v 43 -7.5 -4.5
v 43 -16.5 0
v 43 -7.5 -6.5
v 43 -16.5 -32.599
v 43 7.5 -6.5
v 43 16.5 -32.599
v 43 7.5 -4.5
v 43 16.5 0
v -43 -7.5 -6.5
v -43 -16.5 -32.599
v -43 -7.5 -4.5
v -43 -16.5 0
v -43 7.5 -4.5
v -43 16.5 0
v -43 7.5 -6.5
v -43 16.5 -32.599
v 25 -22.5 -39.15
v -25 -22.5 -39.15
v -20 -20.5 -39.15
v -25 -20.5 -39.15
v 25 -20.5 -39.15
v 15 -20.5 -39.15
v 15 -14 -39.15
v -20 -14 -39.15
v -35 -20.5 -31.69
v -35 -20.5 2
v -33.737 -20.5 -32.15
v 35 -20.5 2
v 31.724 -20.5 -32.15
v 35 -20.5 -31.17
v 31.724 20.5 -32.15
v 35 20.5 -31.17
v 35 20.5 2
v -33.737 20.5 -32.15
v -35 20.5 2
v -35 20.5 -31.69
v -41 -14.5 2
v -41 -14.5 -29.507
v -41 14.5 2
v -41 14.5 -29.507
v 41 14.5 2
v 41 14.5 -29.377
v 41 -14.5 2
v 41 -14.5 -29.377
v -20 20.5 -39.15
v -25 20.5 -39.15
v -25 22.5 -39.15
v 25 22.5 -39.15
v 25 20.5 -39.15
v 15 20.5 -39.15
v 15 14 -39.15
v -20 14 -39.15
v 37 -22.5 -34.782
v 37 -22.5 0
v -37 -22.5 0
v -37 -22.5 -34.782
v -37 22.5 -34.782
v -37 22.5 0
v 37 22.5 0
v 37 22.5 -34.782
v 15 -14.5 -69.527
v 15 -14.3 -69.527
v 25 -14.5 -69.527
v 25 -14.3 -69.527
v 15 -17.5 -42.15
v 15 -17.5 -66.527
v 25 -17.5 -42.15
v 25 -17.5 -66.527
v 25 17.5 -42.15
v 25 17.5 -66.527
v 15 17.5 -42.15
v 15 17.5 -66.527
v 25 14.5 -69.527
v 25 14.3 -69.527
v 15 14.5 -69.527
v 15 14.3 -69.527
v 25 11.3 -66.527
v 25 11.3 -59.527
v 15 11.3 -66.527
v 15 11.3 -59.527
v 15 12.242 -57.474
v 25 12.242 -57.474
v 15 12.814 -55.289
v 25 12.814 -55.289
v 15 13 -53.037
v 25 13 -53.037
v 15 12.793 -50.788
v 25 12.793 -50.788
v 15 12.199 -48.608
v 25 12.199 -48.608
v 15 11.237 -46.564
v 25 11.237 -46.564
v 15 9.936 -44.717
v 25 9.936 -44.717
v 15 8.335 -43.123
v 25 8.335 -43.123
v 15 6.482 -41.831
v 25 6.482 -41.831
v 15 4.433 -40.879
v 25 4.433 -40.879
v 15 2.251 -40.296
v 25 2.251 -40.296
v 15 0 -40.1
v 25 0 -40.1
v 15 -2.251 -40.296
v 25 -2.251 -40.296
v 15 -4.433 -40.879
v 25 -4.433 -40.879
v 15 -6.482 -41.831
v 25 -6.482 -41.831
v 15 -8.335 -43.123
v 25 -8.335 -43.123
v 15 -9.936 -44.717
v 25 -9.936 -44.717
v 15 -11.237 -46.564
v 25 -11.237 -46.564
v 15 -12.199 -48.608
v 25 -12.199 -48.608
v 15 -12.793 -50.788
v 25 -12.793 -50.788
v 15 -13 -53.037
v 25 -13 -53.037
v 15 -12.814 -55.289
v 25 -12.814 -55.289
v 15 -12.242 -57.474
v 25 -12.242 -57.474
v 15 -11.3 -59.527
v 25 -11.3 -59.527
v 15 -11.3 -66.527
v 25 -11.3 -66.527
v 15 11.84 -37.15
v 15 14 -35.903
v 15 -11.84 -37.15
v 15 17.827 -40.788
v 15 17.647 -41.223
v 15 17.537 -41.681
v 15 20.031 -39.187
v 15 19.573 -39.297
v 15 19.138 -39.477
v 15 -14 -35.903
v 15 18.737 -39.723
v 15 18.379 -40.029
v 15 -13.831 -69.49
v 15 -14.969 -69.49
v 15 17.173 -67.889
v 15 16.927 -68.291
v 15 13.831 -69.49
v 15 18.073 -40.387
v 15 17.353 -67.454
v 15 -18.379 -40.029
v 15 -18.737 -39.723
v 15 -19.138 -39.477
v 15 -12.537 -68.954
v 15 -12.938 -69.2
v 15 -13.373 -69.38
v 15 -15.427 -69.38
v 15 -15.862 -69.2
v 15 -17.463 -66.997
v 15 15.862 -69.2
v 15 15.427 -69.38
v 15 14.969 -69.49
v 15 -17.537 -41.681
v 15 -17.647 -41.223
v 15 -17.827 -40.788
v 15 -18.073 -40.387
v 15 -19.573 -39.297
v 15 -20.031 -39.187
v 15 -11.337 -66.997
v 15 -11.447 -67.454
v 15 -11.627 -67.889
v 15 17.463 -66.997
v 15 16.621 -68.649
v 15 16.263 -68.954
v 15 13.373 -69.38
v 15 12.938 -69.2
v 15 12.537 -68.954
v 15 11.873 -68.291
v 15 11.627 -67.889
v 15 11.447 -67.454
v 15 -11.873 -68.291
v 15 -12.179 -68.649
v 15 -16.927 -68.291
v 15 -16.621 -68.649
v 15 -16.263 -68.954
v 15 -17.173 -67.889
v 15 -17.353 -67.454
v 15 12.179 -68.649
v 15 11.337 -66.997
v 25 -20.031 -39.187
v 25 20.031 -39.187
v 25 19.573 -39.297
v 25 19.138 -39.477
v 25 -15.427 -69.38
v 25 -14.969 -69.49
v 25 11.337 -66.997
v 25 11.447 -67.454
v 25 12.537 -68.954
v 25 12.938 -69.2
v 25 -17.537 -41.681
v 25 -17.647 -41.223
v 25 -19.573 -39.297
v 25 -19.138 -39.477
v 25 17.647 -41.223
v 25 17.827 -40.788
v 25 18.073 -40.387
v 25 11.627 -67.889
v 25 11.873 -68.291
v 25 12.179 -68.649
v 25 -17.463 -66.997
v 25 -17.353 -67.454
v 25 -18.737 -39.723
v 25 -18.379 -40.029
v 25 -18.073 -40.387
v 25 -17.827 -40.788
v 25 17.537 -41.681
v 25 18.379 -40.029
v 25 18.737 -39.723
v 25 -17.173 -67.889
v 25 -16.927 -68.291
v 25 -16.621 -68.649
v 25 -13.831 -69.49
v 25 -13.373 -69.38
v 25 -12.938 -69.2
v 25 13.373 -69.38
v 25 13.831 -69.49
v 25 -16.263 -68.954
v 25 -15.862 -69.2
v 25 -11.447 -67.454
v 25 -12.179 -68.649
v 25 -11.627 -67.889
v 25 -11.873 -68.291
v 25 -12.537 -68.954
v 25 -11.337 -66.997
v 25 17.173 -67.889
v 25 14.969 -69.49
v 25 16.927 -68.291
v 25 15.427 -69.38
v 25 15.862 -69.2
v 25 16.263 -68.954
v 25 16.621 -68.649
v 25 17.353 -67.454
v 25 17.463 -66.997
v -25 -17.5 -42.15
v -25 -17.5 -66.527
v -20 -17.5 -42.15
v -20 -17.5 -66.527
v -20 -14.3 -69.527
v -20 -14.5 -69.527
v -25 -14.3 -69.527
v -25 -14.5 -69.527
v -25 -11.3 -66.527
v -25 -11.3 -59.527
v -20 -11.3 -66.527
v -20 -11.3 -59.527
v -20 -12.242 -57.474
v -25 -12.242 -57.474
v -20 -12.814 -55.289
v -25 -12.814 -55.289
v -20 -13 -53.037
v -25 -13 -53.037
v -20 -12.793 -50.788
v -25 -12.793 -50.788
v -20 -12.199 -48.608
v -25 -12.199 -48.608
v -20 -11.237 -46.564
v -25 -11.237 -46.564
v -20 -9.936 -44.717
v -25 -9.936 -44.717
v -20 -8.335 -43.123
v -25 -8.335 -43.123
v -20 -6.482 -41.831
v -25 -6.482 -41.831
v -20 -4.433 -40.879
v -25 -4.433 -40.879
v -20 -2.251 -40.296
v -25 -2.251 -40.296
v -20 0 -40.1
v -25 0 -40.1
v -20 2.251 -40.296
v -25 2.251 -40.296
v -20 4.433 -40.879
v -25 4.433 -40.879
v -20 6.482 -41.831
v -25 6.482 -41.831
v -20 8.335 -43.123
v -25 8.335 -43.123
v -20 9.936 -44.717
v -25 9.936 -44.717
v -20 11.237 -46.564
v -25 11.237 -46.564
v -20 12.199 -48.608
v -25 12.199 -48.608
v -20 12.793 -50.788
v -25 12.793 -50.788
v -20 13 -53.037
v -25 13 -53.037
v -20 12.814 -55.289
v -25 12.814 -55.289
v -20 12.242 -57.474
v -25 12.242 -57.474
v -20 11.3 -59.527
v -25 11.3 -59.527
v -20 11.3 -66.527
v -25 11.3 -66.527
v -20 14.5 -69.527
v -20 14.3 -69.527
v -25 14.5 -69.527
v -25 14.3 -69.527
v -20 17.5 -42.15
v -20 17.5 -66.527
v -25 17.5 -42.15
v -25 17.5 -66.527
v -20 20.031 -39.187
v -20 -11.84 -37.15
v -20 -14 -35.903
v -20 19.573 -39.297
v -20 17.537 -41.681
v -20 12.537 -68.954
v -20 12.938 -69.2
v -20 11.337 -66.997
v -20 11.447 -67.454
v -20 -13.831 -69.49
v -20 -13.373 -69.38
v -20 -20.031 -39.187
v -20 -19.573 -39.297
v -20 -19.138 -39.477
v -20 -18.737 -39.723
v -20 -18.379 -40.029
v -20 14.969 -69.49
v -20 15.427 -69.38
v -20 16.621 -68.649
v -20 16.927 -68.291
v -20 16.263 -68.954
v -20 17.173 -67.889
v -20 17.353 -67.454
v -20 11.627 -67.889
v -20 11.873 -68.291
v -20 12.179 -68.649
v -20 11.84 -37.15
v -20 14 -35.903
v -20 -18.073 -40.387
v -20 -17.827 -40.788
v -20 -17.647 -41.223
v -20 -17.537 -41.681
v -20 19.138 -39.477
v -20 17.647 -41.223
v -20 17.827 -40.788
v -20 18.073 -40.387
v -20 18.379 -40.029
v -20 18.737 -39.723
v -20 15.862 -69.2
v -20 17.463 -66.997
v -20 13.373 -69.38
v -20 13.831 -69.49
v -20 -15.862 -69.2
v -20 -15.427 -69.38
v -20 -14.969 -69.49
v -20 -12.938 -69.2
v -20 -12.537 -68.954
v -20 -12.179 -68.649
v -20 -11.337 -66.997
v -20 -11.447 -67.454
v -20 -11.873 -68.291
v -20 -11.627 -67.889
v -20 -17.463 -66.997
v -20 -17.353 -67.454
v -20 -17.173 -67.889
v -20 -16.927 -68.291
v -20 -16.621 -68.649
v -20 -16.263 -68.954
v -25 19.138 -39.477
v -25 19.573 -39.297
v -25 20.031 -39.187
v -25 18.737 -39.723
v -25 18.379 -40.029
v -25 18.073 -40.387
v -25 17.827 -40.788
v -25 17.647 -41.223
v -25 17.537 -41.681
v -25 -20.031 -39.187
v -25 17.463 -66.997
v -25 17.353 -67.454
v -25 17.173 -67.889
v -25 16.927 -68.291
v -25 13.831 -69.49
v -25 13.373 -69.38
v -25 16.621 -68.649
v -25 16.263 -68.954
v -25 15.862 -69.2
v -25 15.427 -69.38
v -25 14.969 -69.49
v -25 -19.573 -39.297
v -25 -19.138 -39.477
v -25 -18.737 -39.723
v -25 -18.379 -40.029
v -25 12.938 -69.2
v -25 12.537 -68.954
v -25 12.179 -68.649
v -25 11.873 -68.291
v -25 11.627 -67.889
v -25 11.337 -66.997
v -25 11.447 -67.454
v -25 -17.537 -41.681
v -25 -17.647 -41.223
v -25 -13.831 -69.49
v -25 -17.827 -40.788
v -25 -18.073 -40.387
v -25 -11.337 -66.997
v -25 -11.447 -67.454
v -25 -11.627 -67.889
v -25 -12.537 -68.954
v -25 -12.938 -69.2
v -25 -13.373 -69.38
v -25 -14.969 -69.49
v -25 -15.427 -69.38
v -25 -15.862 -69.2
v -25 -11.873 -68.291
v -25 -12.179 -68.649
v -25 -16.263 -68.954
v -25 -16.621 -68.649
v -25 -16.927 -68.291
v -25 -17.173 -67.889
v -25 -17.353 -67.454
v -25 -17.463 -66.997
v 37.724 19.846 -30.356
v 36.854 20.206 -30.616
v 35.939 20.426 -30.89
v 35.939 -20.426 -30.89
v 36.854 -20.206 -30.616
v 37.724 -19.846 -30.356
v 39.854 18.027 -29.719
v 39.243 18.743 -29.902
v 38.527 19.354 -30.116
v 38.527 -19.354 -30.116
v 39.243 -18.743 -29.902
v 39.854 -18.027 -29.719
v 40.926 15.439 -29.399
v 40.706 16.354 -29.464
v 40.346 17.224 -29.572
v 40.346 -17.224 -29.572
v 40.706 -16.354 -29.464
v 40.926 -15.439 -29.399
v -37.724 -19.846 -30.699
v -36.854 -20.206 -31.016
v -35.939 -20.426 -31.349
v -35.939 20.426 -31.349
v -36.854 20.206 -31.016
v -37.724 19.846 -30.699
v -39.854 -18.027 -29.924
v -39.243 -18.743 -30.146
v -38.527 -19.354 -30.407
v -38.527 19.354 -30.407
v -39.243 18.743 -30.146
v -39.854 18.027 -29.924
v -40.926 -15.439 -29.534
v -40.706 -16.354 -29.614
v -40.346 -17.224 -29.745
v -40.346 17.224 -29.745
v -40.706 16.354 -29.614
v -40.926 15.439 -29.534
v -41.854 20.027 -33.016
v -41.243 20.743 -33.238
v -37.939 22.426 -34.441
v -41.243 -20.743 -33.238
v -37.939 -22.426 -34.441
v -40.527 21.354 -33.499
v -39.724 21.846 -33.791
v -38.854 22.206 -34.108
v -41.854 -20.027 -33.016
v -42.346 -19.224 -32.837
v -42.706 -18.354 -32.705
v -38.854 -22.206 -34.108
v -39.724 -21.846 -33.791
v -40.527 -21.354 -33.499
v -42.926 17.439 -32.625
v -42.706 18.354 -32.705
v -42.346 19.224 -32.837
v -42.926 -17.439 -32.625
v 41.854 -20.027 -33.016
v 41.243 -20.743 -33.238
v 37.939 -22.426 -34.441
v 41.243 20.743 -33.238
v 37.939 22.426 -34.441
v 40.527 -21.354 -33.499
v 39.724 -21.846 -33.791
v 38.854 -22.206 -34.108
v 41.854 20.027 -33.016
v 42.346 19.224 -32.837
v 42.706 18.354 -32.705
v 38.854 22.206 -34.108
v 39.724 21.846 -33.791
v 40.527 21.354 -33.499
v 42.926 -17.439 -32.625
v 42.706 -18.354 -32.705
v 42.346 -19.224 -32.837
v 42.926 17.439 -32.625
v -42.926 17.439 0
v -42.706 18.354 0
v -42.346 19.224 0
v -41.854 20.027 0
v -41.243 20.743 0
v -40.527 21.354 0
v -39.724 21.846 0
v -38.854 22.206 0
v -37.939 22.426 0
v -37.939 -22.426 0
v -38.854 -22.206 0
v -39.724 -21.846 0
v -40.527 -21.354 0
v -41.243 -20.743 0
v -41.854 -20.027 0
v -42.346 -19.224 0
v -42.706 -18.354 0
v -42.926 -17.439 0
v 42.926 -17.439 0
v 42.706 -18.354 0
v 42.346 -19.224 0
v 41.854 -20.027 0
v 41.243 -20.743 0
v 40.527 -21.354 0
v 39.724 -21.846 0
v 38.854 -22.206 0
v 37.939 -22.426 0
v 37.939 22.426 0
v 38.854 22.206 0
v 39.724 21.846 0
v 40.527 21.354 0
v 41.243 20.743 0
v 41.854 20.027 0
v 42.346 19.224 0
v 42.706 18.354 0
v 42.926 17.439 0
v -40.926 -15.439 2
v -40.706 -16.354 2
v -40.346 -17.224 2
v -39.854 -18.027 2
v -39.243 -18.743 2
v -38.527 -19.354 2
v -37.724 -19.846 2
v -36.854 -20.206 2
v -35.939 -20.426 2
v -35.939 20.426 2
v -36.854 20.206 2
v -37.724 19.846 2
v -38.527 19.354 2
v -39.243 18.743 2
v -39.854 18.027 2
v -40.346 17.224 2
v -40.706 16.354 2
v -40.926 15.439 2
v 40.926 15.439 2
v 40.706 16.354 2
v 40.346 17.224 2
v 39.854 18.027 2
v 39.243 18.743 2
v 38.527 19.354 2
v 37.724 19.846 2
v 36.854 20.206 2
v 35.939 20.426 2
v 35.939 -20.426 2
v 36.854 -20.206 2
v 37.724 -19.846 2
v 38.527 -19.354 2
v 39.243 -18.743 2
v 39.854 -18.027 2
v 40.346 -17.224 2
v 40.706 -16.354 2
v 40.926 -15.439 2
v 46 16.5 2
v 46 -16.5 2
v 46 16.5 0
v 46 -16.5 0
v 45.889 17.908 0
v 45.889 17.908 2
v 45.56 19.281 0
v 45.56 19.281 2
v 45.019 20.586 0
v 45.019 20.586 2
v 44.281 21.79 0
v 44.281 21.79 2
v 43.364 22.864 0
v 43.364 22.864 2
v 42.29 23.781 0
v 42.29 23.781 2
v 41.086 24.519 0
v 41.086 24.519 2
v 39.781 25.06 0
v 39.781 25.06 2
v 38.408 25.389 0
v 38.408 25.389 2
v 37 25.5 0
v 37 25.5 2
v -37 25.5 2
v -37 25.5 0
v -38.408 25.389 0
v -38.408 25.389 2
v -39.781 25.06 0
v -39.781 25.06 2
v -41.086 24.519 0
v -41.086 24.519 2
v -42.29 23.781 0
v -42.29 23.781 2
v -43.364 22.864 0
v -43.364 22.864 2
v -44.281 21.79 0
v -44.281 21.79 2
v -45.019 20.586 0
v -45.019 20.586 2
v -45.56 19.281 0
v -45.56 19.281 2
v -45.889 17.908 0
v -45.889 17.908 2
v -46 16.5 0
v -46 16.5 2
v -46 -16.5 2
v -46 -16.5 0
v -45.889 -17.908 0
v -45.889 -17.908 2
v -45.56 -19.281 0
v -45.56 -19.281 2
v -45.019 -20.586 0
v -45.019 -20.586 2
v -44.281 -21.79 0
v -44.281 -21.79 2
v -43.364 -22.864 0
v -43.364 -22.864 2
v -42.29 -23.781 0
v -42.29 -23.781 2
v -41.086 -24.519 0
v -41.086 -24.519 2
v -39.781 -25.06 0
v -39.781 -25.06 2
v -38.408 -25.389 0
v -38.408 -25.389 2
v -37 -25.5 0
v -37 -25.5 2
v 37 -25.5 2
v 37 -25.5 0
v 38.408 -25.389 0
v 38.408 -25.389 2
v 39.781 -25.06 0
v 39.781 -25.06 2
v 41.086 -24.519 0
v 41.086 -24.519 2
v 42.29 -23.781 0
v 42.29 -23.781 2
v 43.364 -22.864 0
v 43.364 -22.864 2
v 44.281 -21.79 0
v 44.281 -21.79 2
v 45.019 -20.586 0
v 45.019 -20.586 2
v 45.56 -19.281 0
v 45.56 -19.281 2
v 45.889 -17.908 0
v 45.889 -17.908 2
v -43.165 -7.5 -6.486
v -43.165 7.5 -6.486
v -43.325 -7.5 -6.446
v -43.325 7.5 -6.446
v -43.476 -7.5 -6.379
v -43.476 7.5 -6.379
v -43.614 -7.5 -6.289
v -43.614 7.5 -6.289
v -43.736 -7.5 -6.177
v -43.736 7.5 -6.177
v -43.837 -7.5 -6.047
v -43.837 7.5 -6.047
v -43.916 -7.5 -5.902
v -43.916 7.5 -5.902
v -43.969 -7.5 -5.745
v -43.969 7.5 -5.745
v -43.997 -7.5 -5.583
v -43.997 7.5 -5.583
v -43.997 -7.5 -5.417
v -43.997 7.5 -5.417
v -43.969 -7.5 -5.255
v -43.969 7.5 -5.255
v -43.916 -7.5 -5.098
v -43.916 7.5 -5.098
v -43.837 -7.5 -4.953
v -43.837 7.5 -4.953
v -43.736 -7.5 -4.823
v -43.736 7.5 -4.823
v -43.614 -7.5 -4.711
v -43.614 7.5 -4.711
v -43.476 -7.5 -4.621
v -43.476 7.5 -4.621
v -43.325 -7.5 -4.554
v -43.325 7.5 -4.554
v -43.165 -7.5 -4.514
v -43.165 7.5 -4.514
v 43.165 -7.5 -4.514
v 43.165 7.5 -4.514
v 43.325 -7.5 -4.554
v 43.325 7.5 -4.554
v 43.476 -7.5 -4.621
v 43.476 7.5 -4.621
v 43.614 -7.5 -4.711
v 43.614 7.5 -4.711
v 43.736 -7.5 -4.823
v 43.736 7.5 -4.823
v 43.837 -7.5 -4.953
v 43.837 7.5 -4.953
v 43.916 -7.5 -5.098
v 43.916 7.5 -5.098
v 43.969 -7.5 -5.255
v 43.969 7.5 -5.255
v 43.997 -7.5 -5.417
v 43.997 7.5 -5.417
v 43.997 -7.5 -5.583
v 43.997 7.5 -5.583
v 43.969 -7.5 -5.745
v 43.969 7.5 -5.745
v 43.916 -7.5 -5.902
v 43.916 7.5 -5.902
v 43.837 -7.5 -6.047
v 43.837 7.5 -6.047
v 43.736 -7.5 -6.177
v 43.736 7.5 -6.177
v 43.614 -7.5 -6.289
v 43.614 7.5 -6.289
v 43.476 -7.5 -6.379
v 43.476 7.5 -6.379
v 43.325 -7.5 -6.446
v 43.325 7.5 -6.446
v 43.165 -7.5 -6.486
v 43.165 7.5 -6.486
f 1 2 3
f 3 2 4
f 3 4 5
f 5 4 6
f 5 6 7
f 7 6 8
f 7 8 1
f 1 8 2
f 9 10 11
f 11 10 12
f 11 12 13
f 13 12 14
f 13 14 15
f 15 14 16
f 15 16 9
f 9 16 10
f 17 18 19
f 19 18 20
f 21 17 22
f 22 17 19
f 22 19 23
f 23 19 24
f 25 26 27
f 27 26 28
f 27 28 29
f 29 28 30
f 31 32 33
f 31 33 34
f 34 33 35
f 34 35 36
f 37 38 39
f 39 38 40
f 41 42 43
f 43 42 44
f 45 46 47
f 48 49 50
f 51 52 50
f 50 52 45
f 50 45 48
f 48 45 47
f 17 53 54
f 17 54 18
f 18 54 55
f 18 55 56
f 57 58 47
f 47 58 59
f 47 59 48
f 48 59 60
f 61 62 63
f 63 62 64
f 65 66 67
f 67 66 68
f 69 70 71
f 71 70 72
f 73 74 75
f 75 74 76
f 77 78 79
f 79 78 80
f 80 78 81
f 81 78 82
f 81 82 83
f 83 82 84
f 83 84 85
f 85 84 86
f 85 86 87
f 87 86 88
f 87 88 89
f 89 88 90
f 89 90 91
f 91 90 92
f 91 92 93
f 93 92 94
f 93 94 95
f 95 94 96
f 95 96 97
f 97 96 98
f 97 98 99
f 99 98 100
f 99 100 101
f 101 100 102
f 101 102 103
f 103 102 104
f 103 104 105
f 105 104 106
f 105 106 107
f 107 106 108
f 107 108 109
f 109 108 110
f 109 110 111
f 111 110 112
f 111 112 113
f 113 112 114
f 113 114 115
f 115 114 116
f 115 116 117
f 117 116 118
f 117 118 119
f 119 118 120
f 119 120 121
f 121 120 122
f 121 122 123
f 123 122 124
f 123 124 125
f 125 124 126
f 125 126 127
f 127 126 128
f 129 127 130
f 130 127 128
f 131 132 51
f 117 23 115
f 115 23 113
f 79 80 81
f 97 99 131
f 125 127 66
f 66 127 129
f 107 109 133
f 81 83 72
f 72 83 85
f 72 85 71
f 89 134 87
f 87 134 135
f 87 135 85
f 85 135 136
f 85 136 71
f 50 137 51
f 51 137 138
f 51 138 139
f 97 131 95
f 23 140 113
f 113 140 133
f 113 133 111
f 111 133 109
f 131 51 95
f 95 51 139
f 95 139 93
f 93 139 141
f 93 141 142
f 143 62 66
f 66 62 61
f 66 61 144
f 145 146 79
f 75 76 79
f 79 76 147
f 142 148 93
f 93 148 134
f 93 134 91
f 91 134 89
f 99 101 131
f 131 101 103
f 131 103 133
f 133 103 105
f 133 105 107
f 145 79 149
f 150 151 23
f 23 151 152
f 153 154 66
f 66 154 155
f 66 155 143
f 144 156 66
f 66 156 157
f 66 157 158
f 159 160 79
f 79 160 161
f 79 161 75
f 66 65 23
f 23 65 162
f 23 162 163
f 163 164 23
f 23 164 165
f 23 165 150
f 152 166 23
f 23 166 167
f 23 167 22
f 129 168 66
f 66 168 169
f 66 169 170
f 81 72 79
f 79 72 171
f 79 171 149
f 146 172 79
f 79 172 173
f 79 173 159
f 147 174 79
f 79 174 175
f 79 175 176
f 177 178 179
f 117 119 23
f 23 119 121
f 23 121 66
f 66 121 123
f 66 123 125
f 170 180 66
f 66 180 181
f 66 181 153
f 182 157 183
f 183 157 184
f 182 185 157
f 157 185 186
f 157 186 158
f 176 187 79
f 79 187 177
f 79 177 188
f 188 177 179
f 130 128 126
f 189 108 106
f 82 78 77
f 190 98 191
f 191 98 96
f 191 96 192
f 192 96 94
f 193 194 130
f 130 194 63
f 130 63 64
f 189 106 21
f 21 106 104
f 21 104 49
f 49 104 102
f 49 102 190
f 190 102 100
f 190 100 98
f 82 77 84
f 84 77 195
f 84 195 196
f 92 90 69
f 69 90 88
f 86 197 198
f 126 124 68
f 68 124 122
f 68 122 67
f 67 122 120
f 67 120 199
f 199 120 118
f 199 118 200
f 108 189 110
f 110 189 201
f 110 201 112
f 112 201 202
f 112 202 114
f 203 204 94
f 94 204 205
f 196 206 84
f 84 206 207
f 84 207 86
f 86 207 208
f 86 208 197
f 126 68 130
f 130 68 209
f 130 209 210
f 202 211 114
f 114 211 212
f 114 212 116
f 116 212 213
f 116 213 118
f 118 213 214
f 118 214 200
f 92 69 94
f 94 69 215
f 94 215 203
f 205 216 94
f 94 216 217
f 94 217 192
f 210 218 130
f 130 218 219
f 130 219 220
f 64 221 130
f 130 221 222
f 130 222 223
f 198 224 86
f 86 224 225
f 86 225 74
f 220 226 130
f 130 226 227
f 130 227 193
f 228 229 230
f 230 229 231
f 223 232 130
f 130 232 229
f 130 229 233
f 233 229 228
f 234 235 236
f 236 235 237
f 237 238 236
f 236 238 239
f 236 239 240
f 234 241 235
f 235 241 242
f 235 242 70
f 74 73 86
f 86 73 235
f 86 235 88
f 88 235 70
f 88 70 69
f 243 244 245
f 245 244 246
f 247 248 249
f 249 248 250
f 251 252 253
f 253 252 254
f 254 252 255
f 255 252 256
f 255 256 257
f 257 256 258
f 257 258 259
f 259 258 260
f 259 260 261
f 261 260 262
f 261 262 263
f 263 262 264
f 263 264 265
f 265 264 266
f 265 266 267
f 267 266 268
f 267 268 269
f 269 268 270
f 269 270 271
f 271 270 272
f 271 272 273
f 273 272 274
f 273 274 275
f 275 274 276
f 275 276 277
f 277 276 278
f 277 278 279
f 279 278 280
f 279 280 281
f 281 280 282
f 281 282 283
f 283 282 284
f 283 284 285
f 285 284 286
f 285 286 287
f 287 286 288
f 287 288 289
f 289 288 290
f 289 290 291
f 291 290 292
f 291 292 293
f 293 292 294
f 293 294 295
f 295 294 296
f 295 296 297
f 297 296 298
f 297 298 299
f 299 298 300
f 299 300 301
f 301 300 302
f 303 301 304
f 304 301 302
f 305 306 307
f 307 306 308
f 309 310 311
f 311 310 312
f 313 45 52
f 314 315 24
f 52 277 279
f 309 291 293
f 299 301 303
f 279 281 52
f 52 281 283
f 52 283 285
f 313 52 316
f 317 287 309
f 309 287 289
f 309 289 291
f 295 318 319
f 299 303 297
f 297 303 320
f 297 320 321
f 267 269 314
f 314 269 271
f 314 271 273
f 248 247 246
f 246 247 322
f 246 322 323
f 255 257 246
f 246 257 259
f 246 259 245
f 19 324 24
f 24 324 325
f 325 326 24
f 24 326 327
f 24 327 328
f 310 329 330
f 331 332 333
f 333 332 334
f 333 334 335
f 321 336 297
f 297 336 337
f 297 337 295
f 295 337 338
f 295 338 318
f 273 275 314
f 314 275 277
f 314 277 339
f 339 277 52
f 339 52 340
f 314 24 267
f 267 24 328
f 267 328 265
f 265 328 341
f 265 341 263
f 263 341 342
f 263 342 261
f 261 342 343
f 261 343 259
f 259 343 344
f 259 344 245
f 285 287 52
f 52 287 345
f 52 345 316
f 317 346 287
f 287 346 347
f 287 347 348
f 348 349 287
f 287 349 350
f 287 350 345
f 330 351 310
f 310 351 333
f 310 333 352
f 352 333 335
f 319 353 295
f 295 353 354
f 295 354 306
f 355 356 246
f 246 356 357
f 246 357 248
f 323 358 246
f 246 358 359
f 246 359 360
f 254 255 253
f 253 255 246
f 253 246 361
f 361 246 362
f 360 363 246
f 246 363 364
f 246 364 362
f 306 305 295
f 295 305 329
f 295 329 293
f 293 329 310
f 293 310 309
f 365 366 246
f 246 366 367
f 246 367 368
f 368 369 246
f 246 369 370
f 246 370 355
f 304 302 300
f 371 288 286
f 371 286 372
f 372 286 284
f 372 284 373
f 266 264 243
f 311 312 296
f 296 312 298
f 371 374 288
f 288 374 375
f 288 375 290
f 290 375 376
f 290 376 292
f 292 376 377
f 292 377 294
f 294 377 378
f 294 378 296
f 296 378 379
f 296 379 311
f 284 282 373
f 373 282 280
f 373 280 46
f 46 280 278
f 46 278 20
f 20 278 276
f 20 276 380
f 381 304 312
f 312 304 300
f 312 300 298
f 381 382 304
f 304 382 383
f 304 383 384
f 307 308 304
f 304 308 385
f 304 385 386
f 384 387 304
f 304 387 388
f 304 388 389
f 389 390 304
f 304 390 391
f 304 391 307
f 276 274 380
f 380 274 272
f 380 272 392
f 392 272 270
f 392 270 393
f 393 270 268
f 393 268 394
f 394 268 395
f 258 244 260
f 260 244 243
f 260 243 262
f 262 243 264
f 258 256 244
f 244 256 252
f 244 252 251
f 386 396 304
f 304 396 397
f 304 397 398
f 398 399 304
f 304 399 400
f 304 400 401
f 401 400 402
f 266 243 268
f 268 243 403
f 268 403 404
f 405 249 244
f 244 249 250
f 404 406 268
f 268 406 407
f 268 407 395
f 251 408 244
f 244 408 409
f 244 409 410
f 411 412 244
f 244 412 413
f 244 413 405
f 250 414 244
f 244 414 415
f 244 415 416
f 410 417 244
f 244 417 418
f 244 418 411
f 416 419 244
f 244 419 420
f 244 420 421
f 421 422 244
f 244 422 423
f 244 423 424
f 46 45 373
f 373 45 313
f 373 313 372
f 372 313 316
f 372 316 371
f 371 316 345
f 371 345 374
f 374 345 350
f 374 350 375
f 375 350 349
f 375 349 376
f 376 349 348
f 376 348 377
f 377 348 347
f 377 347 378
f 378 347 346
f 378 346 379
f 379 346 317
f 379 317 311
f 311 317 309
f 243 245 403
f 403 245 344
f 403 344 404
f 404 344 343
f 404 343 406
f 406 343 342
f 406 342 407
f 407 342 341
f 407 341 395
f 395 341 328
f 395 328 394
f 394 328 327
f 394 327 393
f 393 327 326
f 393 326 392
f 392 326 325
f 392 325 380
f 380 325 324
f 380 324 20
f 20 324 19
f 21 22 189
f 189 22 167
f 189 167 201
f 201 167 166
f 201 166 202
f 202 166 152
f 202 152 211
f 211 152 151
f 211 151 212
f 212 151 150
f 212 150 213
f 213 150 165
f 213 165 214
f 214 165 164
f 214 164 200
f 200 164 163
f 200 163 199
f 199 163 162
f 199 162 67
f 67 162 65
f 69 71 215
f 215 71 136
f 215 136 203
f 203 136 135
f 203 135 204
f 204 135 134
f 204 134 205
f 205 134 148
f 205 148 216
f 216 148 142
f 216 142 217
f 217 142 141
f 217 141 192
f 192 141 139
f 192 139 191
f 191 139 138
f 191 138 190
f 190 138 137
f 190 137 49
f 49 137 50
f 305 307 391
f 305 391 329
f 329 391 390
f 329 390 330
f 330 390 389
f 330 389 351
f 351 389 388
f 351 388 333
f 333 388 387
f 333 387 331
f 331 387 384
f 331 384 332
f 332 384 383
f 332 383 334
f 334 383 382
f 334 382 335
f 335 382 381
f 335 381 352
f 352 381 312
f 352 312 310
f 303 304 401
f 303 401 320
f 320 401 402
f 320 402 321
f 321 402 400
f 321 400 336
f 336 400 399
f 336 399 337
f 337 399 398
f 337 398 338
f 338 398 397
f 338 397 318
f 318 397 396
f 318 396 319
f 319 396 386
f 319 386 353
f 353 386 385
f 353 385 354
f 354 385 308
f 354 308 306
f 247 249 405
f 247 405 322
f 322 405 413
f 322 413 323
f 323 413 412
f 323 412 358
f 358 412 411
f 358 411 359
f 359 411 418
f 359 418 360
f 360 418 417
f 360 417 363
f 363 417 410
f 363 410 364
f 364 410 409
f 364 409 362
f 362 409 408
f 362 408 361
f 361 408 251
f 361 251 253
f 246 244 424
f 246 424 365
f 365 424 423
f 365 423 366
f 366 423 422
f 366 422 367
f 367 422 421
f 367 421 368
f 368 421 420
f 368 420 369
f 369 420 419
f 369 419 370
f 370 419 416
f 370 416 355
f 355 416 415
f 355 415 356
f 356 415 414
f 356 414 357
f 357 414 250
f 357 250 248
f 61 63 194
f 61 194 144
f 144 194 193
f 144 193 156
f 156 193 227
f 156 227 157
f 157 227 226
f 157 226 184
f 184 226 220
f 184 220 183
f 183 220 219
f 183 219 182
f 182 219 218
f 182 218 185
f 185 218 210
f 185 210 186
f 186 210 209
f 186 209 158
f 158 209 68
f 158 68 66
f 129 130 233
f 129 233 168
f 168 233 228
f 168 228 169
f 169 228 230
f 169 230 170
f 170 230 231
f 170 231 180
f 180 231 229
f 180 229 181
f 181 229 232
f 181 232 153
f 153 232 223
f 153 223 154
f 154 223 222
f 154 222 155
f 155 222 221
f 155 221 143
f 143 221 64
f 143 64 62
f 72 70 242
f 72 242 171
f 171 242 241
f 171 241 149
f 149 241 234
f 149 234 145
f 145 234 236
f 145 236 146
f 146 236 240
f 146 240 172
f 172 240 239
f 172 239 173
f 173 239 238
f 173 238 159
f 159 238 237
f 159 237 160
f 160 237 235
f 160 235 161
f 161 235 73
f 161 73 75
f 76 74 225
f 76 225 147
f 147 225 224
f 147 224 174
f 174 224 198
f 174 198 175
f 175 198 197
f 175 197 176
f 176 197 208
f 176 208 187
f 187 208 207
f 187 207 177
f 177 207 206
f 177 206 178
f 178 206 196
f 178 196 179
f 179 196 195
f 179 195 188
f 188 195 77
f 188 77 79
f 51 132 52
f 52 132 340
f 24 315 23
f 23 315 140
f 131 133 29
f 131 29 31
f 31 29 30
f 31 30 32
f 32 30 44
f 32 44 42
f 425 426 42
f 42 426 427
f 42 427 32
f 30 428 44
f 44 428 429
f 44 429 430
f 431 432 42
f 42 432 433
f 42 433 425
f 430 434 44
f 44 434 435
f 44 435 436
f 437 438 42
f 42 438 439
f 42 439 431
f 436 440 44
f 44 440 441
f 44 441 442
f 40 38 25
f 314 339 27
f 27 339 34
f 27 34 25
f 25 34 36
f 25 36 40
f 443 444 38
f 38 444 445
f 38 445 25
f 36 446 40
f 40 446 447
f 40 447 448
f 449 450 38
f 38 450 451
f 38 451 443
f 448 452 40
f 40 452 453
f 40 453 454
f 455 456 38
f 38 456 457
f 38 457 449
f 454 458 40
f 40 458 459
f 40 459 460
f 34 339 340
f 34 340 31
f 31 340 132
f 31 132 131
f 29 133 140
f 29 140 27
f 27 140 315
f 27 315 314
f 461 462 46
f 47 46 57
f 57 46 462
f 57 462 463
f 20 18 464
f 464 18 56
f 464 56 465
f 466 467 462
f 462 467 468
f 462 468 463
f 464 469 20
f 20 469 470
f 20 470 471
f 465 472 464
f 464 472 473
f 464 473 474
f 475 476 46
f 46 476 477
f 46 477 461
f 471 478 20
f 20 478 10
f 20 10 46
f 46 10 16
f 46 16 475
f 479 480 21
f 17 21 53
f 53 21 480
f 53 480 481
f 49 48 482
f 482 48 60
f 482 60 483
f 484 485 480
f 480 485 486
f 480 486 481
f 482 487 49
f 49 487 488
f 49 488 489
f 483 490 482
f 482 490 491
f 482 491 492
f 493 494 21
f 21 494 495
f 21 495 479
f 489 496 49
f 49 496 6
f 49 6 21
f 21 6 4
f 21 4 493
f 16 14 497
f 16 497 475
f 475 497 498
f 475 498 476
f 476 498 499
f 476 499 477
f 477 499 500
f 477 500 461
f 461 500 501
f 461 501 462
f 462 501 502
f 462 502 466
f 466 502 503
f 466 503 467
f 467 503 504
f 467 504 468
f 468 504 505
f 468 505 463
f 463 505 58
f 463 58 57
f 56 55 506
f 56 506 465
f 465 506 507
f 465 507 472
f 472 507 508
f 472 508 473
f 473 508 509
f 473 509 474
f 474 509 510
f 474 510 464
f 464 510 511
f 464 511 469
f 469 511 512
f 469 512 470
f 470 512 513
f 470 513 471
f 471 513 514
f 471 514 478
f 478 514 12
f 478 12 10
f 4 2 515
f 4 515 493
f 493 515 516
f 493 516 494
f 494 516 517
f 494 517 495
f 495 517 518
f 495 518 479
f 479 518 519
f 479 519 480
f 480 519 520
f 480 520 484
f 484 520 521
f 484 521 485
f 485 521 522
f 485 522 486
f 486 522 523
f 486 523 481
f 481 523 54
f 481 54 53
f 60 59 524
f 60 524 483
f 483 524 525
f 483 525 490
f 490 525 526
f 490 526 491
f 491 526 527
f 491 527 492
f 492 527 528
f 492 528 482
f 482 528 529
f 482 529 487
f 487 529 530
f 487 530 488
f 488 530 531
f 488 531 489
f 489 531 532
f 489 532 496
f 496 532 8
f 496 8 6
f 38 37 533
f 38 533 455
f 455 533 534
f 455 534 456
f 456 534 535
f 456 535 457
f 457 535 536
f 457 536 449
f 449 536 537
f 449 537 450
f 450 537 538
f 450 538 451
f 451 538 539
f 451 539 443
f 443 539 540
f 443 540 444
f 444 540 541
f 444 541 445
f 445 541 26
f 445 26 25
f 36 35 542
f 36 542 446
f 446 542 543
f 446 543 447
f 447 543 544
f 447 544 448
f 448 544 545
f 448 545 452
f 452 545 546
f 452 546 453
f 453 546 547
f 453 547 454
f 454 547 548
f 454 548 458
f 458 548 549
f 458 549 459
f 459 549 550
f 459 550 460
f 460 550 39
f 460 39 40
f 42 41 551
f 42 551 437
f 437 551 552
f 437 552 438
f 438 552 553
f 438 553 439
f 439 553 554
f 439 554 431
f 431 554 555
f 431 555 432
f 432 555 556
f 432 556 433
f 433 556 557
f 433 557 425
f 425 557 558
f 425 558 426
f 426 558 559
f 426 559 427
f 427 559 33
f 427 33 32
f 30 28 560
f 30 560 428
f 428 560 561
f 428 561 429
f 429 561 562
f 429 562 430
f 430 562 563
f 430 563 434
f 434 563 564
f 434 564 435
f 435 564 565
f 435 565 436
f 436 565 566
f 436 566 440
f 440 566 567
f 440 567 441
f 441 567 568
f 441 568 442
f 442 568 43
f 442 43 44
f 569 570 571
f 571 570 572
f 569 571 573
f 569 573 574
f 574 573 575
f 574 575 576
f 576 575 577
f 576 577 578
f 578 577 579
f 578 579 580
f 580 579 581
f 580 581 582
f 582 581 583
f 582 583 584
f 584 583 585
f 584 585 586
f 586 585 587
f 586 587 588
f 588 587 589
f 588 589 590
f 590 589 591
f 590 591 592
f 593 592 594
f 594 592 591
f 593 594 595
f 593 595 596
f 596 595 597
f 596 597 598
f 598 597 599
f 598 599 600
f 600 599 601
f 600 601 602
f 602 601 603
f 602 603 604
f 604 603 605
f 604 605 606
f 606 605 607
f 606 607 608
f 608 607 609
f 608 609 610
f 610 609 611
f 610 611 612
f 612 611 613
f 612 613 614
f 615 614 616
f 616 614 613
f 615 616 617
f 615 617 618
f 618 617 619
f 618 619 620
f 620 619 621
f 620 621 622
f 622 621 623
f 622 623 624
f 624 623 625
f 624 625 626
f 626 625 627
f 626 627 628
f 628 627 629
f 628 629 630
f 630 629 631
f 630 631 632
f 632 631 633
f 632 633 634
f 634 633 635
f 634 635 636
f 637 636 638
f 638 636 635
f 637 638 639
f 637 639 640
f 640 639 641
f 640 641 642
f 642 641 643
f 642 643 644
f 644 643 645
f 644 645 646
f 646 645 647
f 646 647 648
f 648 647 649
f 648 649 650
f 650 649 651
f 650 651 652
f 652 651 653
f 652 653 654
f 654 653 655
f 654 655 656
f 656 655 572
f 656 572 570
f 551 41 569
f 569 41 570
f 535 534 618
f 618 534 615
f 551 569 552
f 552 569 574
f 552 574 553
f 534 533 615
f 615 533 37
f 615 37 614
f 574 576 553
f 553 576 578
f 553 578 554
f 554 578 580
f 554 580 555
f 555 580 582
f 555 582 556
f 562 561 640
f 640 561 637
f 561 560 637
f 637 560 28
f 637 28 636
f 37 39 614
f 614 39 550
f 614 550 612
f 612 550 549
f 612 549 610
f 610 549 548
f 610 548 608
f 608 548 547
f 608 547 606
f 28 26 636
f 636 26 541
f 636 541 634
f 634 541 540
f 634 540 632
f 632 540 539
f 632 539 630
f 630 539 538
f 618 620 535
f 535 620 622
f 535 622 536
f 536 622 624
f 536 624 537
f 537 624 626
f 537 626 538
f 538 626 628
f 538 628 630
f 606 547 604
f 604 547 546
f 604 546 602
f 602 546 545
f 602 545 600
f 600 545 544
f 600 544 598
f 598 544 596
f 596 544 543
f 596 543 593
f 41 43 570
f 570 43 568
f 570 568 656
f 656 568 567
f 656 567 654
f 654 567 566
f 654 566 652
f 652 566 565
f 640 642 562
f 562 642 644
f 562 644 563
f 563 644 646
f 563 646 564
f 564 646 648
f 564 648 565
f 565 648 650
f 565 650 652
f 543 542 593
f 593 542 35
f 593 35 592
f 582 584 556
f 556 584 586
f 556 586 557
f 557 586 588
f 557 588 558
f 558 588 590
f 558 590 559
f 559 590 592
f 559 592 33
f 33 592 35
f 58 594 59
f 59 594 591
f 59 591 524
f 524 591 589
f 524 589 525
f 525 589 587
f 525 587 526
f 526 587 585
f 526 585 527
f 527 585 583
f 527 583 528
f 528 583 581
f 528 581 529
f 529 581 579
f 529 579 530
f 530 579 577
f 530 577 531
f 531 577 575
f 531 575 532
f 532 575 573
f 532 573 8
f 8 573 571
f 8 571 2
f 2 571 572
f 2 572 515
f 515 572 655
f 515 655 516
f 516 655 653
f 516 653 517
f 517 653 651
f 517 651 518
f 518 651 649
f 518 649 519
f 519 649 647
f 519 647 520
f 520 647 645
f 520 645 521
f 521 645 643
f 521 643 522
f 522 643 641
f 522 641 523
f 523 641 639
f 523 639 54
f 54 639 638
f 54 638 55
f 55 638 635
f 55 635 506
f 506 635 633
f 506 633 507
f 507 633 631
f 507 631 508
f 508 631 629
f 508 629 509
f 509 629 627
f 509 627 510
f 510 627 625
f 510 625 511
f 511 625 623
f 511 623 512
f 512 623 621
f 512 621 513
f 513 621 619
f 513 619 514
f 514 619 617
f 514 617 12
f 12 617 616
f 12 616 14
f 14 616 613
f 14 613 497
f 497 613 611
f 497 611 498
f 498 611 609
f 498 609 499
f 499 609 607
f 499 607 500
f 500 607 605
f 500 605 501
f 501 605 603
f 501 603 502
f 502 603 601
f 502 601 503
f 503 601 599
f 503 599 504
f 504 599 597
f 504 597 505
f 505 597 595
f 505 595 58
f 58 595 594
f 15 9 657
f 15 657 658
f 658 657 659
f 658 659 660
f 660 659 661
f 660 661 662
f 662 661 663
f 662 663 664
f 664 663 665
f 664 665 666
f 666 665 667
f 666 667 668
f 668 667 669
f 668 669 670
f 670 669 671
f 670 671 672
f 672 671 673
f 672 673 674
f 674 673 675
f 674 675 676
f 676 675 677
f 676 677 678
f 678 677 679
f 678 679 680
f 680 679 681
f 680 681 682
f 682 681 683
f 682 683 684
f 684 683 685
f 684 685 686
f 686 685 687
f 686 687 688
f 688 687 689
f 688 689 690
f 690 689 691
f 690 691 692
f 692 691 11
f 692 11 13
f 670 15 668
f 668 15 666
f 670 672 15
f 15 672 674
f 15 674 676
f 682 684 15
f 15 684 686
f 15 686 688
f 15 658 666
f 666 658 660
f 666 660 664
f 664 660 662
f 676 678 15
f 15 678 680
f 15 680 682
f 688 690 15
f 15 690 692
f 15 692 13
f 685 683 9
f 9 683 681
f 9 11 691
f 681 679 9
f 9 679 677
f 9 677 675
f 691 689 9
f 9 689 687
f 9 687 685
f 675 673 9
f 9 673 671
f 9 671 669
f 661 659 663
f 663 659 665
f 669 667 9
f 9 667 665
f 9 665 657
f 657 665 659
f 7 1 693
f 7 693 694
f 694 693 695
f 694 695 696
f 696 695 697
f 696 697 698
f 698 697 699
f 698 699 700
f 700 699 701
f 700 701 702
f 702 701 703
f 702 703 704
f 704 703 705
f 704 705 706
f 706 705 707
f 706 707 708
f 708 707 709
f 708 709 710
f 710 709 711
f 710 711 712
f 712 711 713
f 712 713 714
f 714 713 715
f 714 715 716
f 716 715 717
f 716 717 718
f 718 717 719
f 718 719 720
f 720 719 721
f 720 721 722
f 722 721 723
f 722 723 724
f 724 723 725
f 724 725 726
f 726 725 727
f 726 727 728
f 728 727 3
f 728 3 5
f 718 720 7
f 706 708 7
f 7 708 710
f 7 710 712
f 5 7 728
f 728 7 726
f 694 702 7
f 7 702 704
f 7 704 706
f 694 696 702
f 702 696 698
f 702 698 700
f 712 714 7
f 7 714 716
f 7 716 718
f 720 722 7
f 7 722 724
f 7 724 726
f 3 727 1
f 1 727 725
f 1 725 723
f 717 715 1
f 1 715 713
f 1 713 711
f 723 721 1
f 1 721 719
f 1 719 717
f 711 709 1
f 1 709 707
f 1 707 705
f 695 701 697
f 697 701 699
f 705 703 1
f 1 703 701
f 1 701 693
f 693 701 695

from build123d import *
from OCP.BRepFilletAPI import BRepFilletAPI_MakeChamfer

# Parameters (mm, degrees)
SKETCH1_W           = 86
SKETCH1_H           = 45
SKETCH1_W_2         = 82
SKETCH1_H_2         = 41
BOSS_EXTRUDE1_DEPTH = 39.15
SKETCH2_W           = 86
SKETCH2_H           = 45
BOSS_EXTRUDE2_DEPTH = 2
BOSS_EXTRUDE3_DEPTH = 10
BOSS_EXTRUDE4_START = -5
BOSS_EXTRUDE4_DEPTH = 5
FILLET2_R           = 3
SKETCH5_W           = 35
SKETCH5_H           = 28
CUT_EXTRUDE1_DEPTH  = 5
BOSS_EXTRUDE5_REACH = 94.369
CHAMFER1_SIZE       = 8.660254038
CHAMFER1_SIZE_2     = 5
CHAMFER2_SIZE       = 6.551464217
CHAMFER2_SIZE_2     = 18
FILLET3_R           = 6
BOSS_EXTRUDE6_DEPTH = 2
BOSS_EXTRUDE7_DEPTH = 15


# Some blends are built 0.0001 mm under size
with BuildPart() as part:
    # Sketch1 → Boss-Extrude1 (new body)
    with BuildSketch(Plane.XY):
        Rectangle(SKETCH1_W, SKETCH1_H)
        Rectangle(SKETCH1_W_2, SKETCH1_H_2, mode=Mode.SUBTRACT)
    extrude(amount=-BOSS_EXTRUDE1_DEPTH)

    # Sketch2 → Boss-Extrude2 (add)
    with BuildSketch(Plane(origin=(0, 0, -39.15), x_dir=(-1, 0, 0), z_dir=(0, 0, -1))):
        Rectangle(SKETCH2_W, SKETCH2_H)
    extrude(amount=-BOSS_EXTRUDE2_DEPTH)

    # Sketch3 → Boss-Extrude3 (add)
    with BuildSketch(Plane(origin=(25, 0, 0), x_dir=(0, 0, -1), z_dir=(1, 0, 0))):
        with BuildLine():
            Line((69.527285586, 11.3), (69.527285586, 17.5))
            Line((69.527285586, 17.5), (39.15, 17.5))
            Line((39.15, 17.5), (39.15, -17.5))
            Line((39.15, -17.5), (69.527285586, -17.5))
            Line((69.527285586, -17.5), (69.527285586, -11.3))
            Line((69.527285586, -11.3), (59.527285586, -11.3))
            ThreePointArc((59.527285586, -11.3), (40.1, 0), (59.527285586, 11.3))
            Line((59.527285586, 11.3), (69.527285586, 11.3))
        make_face()
    extrude(amount=-BOSS_EXTRUDE3_DEPTH)

    # Sketch4 → Boss-Extrude4 (add)
    with BuildSketch(Plane.ZY.offset(25).offset(BOSS_EXTRUDE4_START)):
        with BuildLine():
            Line((-39.15, -17.5), (-39.15, 17.5))
            Line((-39.15, 17.5), (-69.527285586, 17.5))
            Line((-69.527285586, 17.5), (-69.527285586, 11.3))
            Line((-69.527285586, 11.3), (-59.527285586, 11.3))
            ThreePointArc((-59.527285586, 11.3), (-40.1, 0), (-59.527285586, -11.3))
            Line((-59.527285586, -11.3), (-69.527285586, -11.3))
            Line((-69.527285586, -11.3), (-69.527285586, -17.5))
            Line((-69.527285586, -17.5), (-39.15, -17.5))
        make_face()
    extrude(amount=BOSS_EXTRUDE4_DEPTH)

    # Fillet2
    fillet2_edges = [part.edges().sort_by_distance(p)[0] for p in [
        (20, -11.3, -69.527285586),
        (20, -17.5, -69.527285586),
        (20, -17.5, -39.15),
        (20, 17.5, -39.15),
        (20, 17.5, -69.527285586),
        (20, 11.3, -69.527285586),
        (-22.5, -17.5, -39.15),
        (-22.5, -17.5, -69.527285586),
        (-22.5, -11.3, -69.527285586),
        (-22.5, 11.3, -69.527285586),
        (-22.5, 17.5, -69.527285586),
        (-22.5, 17.5, -39.15),
    ]]
    fillet(fillet2_edges, radius=FILLET2_R)

    # Sketch5 → Cut-Extrude1 (cut)
    with BuildSketch(Plane(origin=(0, 0, -39.15), x_dir=(-1, 0, 0), z_dir=(0, 0, -1))):
        with Locations((2.5, 0)):
            Rectangle(SKETCH5_W, SKETCH5_H)
    extrude(amount=-CUT_EXTRUDE1_DEPTH, mode=Mode.SUBTRACT)

    # Boss-Extrude5: up to this face of the body (flat: up to its plane)
    boss_extrude5_end = Plane(part.part.faces().sort_by_distance((0, 20.5, -18.575))[0])
    # Sketch6 → Boss-Extrude5 (add, up to the picked face)
    with BuildSketch(Plane(origin=(0, -20.5, 0), x_dir=(1, 0, 0), z_dir=(0, 1, 0)), mode=Mode.PRIVATE) as boss_extrude5_sk1:
        Polygon((-20, 37.15), (-43, 28.778684612), (-43, 37.15), align=None)
    boss_extrude5_tool1 = split(extrude(boss_extrude5_sk1.sketch, amount=BOSS_EXTRUDE5_REACH, mode=Mode.PRIVATE), bisect_by=boss_extrude5_end, keep=Keep.BOTH, mode=Mode.PRIVATE)
    # Sketch6 → Boss-Extrude5 (add, up to the picked face)
    with BuildSketch(Plane(origin=(0, -20.5, 0), x_dir=(1, 0, 0), z_dir=(0, 1, 0)), mode=Mode.PRIVATE) as boss_extrude5_sk2:
        Polygon((15, 37.15), (43, 37.15), (43, 28.778684612), align=None)
    boss_extrude5_tool2 = split(extrude(boss_extrude5_sk2.sketch, amount=BOSS_EXTRUDE5_REACH, mode=Mode.PRIVATE), bisect_by=boss_extrude5_end, keep=Keep.BOTH, mode=Mode.PRIVATE)
    add(boss_extrude5_tool1.solids().sort_by(Axis((-35.333333, -20.5, -34.359562), (0, 1, 0)))[0])
    add(boss_extrude5_tool2.solids().sort_by(Axis((33.666667, -20.5, -34.359562), (0, 1, 0)))[0])

    # Chamfer1
    # the kernel refuses this chamfer: 8.660254038, 5 mm, written as the material it adds along each edge
    with BuildSketch(Plane(origin=(-42.404819853, 20.5, -37.15), x_dir=(0, -0.999813220622208, -0.019326765612700494), z_dir=(1, 0, 0))) as chamfer1_piece_1_section:
        Polygon((CHAMFER1_SIZE * 0.999813220604, -CHAMFER1_SIZE * 0.0193267656124), (-CHAMFER1_SIZE_2 * 0.0193267656127, -CHAMFER1_SIZE_2 * 0.999813220622), (0, 0), align=None)
    chamfer1_piece_1 = extrude(amount=79.809639706, mode=Mode.PRIVATE)
    chamfer1_piece_1 = split(chamfer1_piece_1, bisect_by=Plane(origin=(-20, 13.459936491, -36.526388375), z_dir=(-1, 0, 0)), keep=Keep.TOP, mode=Mode.PRIVATE)
    add(chamfer1_piece_1)
    with BuildSketch(Plane(origin=(-42.404819853, 20.5, -37.15), x_dir=(0, -0.999813220622208, -0.019326765612700494), z_dir=(1, 0, 0))) as chamfer1_piece_2_section:
        Polygon((CHAMFER1_SIZE * 0.999813220604, -CHAMFER1_SIZE * 0.0193267656124), (-CHAMFER1_SIZE_2 * 0.0193267656127, -CHAMFER1_SIZE_2 * 0.999813220622), (0, 0), align=None)
    chamfer1_piece_2 = extrude(amount=79.809639706, mode=Mode.PRIVATE)
    chamfer1_piece_2 = split(chamfer1_piece_2, bisect_by=Plane(origin=(-2.5, 14, -35.400332947), z_dir=(0, 1, 0)), keep=Keep.TOP, mode=Mode.PRIVATE)
    add(chamfer1_piece_2)
    with BuildSketch(Plane(origin=(-42.404819853, 20.5, -37.15), x_dir=(0, -0.999813220622208, -0.019326765612700494), z_dir=(1, 0, 0))) as chamfer1_piece_3_section:
        Polygon((CHAMFER1_SIZE * 0.999813220604, -CHAMFER1_SIZE * 0.0193267656124), (-CHAMFER1_SIZE_2 * 0.0193267656127, -CHAMFER1_SIZE_2 * 0.999813220622), (0, 0), align=None)
    chamfer1_piece_3 = extrude(amount=79.809639706, mode=Mode.PRIVATE)
    chamfer1_piece_3 = split(chamfer1_piece_3, bisect_by=Plane(origin=(15, 13.459936491, -36.526388375), z_dir=(1, 0, 0)), keep=Keep.TOP, mode=Mode.PRIVATE)
    add(chamfer1_piece_3)
    with BuildSketch(Plane(origin=(37.404819853, -20.5, -37.15), x_dir=(0, 0.999813220622208, -0.019326765612700494), z_dir=(-1, 0, 0))) as chamfer1_piece_4_section:
        Polygon((CHAMFER1_SIZE * 0.999813220604, -CHAMFER1_SIZE * 0.0193267656124), (-CHAMFER1_SIZE_2 * 0.0193267656127, -CHAMFER1_SIZE_2 * 0.999813220622), (0, 0), align=None)
    chamfer1_piece_4 = extrude(amount=79.809639706, mode=Mode.PRIVATE)
    chamfer1_piece_4 = split(chamfer1_piece_4, bisect_by=Plane(origin=(15, -13.459936491, -36.526388375), z_dir=(1, 0, 0)), keep=Keep.TOP, mode=Mode.PRIVATE)
    add(chamfer1_piece_4)
    with BuildSketch(Plane(origin=(37.404819853, -20.5, -37.15), x_dir=(0, 0.999813220622208, -0.019326765612700494), z_dir=(-1, 0, 0))) as chamfer1_piece_5_section:
        Polygon((CHAMFER1_SIZE * 0.999813220604, -CHAMFER1_SIZE * 0.0193267656124), (-CHAMFER1_SIZE_2 * 0.0193267656127, -CHAMFER1_SIZE_2 * 0.999813220622), (0, 0), align=None)
    chamfer1_piece_5 = extrude(amount=79.809639706, mode=Mode.PRIVATE)
    chamfer1_piece_5 = split(chamfer1_piece_5, bisect_by=Plane(origin=(-2.5, -14, -35.400332947), z_dir=(0, -1, 0)), keep=Keep.TOP, mode=Mode.PRIVATE)
    add(chamfer1_piece_5)
    with BuildSketch(Plane(origin=(37.404819853, -20.5, -37.15), x_dir=(0, 0.999813220622208, -0.019326765612700494), z_dir=(-1, 0, 0))) as chamfer1_piece_6_section:
        Polygon((CHAMFER1_SIZE * 0.999813220604, -CHAMFER1_SIZE * 0.0193267656124), (-CHAMFER1_SIZE_2 * 0.0193267656127, -CHAMFER1_SIZE_2 * 0.999813220622), (0, 0), align=None)
    chamfer1_piece_6 = extrude(amount=79.809639706, mode=Mode.PRIVATE)
    chamfer1_piece_6 = split(chamfer1_piece_6, bisect_by=Plane(origin=(-20, -13.459936491, -36.526388375), z_dir=(-1, 0, 0)), keep=Keep.TOP, mode=Mode.PRIVATE)
    add(chamfer1_piece_6)

    # Chamfer2
    chamfer2_edges_1 = [part.edges().sort_by_distance(p)[0] for p in [
        (-43, 0, -39.15),
    ]]
    chamfer2_side_1 = [part.faces().sort_by_distance(p)[0] for p in [
        (-43, 0, -39.018970716),
    ]]
    chamfer2_edges_2 = [part.edges().sort_by_distance(p)[0] for p in [
        (43, 0, -39.15),
    ]]
    chamfer2_side_2 = [part.faces().sort_by_distance(p)[0] for p in [
        (42.868970716, 0, -39.15),
    ]]
    chamfer2 = BRepFilletAPI_MakeChamfer(part.part.solid().wrapped)
    for e in chamfer2_edges_1:
        chamfer2.Add(CHAMFER2_SIZE - 0.0001, CHAMFER2_SIZE_2 - 0.0001, e.wrapped, chamfer2_side_1[0].wrapped)
    for e in chamfer2_edges_2:
        chamfer2.Add(CHAMFER2_SIZE_2 - 0.0001, CHAMFER2_SIZE - 0.0001, e.wrapped, chamfer2_side_2[0].wrapped)
    add(Compound.cast(chamfer2.Shape()), mode=Mode.REPLACE)  # a hair under: the kernel refuses the full size

    # Fillet3
    fillet3_edges = [part.edges().sort_by_distance(p)[0] for p in [
        (41, -20.5, -14.688317856),
        (41, 20.5, -14.688317856),
        (-41, 20.5, -14.75331254),
        (-41, -20.5, -14.75331254),
        (-43, -22.5, -16.299317891),
        (-43, 22.5, -16.299317891),
        (43, -22.5, -16.299317891),
        (43, 22.5, -16.299317891),
    ]]
    fillet(fillet3_edges, radius=FILLET3_R)

    # Sketch7 → Boss-Extrude6 (add)
    # profile 1 of 2: a face of its own
    with BuildSketch(Plane.XY):
        with BuildLine():
            Line((46, -16.5), (46, 16.5))
            ThreePointArc((46, 16.5), (43.363961031, 22.863961031), (37, 25.5))
            Line((37, 25.5), (-37, 25.5))
            ThreePointArc((-37, 25.5), (-43.363961031, 22.863961031), (-46, 16.5))
            Line((-46, 16.5), (-46, -16.5))
            ThreePointArc((-46, -16.5), (-43.363961031, -22.863961031), (-37, -25.5))
            Line((-37, -25.5), (37, -25.5))
            ThreePointArc((37, -25.5), (43.363961031, -22.863961031), (46, -16.5))
        make_face()
        with BuildLine():
            Line((37, 22.5), (-37, 22.5))
            ThreePointArc((-37, 22.5), (-41.242640687, 20.742640687), (-43, 16.5))
            Line((-43, 16.5), (-43, -16.5))
            ThreePointArc((-43, -16.5), (-41.242640687, -20.742640687), (-37, -22.5))
            Line((-37, -22.5), (37, -22.5))
            ThreePointArc((37, -22.5), (41.242640687, -20.742640687), (43, -16.5))
            Line((43, -16.5), (43, 16.5))
            ThreePointArc((43, 16.5), (41.242640687, 20.742640687), (37, 22.5))
        make_face(mode=Mode.SUBTRACT)
    # profile 2 of 2: a face of its own
    with BuildSketch(Plane.XY):
        with BuildLine():
            ThreePointArc((43, 16.5), (41.242640687, 20.742640687), (37, 22.5))
            Line((37, 22.5), (-37, 22.5))
            ThreePointArc((-37, 22.5), (-41.242640687, 20.742640687), (-43, 16.5))
            Line((-43, 16.5), (-43, -16.5))
            ThreePointArc((-43, -16.5), (-41.242640687, -20.742640687), (-37, -22.5))
            Line((-37, -22.5), (37, -22.5))
            ThreePointArc((37, -22.5), (41.242640687, -20.742640687), (43, -16.5))
            Line((43, -16.5), (43, 16.5))
        make_face()
        with BuildLine():
            ThreePointArc((35, 20.5), (39.242640687, 18.742640687), (41, 14.5))
            Line((41, 14.5), (41, -14.5))
            ThreePointArc((41, -14.5), (39.242640687, -18.742640687), (35, -20.5))
            Line((35, -20.5), (-35, -20.5))
            ThreePointArc((-35, -20.5), (-39.242640687, -18.742640687), (-41, -14.5))
            Line((-41, -14.5), (-41, 14.5))
            ThreePointArc((-41, 14.5), (-39.242640687, 18.742640687), (-35, 20.5))
            Line((-35, 20.5), (35, 20.5))
        make_face(mode=Mode.SUBTRACT)
    extrude(amount=BOSS_EXTRUDE6_DEPTH)

    # Sketch9 → Boss-Extrude7 (add)
    with BuildSketch(Plane(origin=(0, -7.5, 0), x_dir=(-1, 0, 0), z_dir=(0, -1, 0))):
        with BuildLine():
            ThreePointArc((44, 5.5), (43.707106781, 6.207106781), (43, 6.5))
            Line((43, 6.5), (43, 4.5))
            ThreePointArc((43, 4.5), (43.707106781, 4.792893219), (44, 5.5))
        make_face()
        with BuildLine():
            Line((43, 4.5), (43, 6.5))
            ThreePointArc((43, 6.5), (42, 5.5), (43, 4.5))
        make_face()
        with BuildLine():
            ThreePointArc((-43, 6.5), (-44, 5.5), (-43, 4.5))
            Line((-43, 4.5), (-43, 6.5))
        make_face()
        with BuildLine():
            Line((-43, 6.5), (-43, 4.5))
            ThreePointArc((-43, 4.5), (-42.292893219, 4.792893219), (-42, 5.5))
            ThreePointArc((-42, 5.5), (-42.292893219, 6.207106781), (-43, 6.5))
        make_face()
    extrude(amount=-BOSS_EXTRUDE7_DEPTH)


solid = part.part
